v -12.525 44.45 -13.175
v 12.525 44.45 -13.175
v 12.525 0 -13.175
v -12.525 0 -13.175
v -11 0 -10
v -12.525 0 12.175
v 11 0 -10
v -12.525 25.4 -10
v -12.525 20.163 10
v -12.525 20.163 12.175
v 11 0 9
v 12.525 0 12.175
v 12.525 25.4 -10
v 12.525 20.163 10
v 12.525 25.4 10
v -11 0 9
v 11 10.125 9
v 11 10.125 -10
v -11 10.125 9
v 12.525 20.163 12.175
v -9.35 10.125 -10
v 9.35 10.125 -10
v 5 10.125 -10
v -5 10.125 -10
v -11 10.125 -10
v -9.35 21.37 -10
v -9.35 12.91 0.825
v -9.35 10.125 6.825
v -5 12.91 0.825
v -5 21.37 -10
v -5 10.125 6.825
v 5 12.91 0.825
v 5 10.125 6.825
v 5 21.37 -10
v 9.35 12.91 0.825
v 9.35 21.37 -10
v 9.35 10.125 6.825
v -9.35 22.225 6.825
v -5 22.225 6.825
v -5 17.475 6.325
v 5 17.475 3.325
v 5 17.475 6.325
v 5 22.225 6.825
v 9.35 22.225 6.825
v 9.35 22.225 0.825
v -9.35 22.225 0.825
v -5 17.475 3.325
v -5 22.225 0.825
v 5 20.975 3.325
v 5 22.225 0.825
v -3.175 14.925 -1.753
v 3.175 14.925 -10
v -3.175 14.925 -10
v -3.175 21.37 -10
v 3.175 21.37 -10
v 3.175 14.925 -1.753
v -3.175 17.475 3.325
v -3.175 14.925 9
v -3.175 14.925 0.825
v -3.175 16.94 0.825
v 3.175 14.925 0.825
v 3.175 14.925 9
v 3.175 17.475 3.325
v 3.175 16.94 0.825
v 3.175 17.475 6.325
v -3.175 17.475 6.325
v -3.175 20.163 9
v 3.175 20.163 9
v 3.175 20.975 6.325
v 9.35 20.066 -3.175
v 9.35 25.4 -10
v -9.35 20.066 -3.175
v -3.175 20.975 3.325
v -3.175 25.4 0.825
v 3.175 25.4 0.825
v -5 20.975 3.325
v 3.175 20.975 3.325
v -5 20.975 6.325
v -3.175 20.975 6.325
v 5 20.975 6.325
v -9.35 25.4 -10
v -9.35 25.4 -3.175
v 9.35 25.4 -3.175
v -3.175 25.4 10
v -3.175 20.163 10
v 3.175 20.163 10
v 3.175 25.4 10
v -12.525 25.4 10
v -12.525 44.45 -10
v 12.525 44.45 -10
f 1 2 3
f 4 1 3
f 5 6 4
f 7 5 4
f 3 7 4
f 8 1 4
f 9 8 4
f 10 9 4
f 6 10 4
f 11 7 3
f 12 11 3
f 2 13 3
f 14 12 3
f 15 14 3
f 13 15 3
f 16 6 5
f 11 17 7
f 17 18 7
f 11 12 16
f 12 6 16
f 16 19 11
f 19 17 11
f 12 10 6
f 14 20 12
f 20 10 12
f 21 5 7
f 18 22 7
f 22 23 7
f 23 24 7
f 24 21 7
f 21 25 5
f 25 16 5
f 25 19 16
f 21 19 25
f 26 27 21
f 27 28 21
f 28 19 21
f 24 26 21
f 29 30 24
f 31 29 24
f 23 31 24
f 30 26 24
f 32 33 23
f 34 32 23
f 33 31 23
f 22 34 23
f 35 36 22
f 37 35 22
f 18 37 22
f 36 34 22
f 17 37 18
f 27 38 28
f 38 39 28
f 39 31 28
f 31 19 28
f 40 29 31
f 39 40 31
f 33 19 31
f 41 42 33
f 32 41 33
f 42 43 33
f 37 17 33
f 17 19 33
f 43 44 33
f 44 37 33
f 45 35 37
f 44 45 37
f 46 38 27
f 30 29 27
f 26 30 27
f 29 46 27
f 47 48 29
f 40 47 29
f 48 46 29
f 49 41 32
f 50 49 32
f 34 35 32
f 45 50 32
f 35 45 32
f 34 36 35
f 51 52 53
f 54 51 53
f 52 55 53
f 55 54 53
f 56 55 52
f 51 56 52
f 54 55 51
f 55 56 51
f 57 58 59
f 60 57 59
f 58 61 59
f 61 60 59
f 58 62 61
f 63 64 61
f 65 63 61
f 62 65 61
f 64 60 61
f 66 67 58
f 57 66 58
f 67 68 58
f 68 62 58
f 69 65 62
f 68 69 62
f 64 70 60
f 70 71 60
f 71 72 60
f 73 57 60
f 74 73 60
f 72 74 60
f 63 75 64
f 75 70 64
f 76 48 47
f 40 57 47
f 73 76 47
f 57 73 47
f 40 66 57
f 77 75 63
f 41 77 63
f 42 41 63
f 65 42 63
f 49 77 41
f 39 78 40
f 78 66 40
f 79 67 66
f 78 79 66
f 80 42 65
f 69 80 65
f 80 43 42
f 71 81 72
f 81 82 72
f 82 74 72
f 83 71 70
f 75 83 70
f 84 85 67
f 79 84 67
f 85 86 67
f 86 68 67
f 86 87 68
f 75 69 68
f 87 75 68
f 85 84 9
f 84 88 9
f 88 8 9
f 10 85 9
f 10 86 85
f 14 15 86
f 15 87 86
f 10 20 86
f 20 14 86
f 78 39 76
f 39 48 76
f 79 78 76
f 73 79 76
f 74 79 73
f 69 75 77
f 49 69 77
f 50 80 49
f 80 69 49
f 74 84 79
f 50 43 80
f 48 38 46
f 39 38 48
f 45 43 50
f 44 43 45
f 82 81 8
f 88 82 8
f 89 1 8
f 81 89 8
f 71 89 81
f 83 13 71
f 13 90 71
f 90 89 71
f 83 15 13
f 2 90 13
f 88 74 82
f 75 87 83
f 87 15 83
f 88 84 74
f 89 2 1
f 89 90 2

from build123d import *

# Parameters (mm, degrees)
SKETCH2_W            = 18.7
SKETCH2_H            = 20
BOSS_EXTRUDE1_DEPTH  = 25.4
SKETCH3_W            = 6.35
SKETCH3_H            = 3.175
SKETCH3_H_2          = 4.125
CUT_EXTRUDE1_DEPTH   = 34.653863077
SKETCH5_W            = 3.175
SKETCH5_H            = 25.4
BOSS_EXTRUDE2_DEPTH  = 20
SKETCH6_W            = 10
SKETCH6_H            = 10.125
CUT_EXTRUDE2_DEPTH   = 16.825
CUT_EXTRUDE3_REACH   = 34.439
SKETCH7_W            = 3
SKETCH7_H            = 3.5
SKETCH8_W            = 22
SKETCH8_H            = 10.125
CUT_EXTRUDE4_DEPTH   = 19
BOSS_EXTRUDE3_REACH  = 39.049
SKETCH10_W           = 3.175
SKETCH10_H           = 20.1625
BOSS_EXTRUDE10_REACH = 39.695
CUT_EXTRUDE5_REACH   = 33.235
SKETCH12_W           = 6.175
SKETCH12_H           = 10.825
BOSS_EXTRUDE11_REACH = 33.235


with BuildPart() as part:
    # Sketch2 → Boss-Extrude1 (new body)
    with BuildSketch(Plane(origin=(0, 0, 0), x_dir=(1, 0, 0), z_dir=(0, 1, 0))):
        Rectangle(SKETCH2_W, SKETCH2_H)
    extrude(amount=BOSS_EXTRUDE1_DEPTH)

    # Sketch3 → Cut-Extrude1 (cut, through all)
    with BuildSketch(Plane(origin=(0, 0, -10), x_dir=(-1, 0, 0), z_dir=(0, 0, -1))):
        with Locations((0, 16.5125)):
            Rectangle(SKETCH3_W, SKETCH3_H)
        with Locations((0, 20.1625)):
            Rectangle(SKETCH3_W, SKETCH3_H_2)
        with Locations((0, 23.8125)):
            Rectangle(SKETCH3_W, SKETCH3_H)
    extrude(amount=-CUT_EXTRUDE1_DEPTH, mode=Mode.SUBTRACT)

    # Sketch5 → Boss-Extrude2 (add)
    with BuildSketch(Plane(origin=(0, 0, -10), x_dir=(-1, 0, 0), z_dir=(0, 0, -1))):
        with Locations((-10.9375, 12.7)):
            Rectangle(SKETCH5_W, SKETCH5_H)
        with Locations((10.9375, 12.7)):
            Rectangle(SKETCH5_W, SKETCH5_H)
    extrude(amount=-BOSS_EXTRUDE2_DEPTH)

    # Sketch6 → Cut-Extrude2 (cut)
    with BuildSketch(Plane(origin=(0, 0, -10), x_dir=(-1, 0, 0), z_dir=(0, 0, -1))):
        Polygon((5, 22.225), (5, 10.125), (5, 0), (9.35, 0), (9.35, 22.225), align=None)
        with Locations((0, 5.0625)):
            Rectangle(SKETCH6_W, SKETCH6_H)
        Polygon((-5, 22.225), (-9.35, 22.225), (-9.35, 0), (-5, 0), (-5, 10.125), align=None)
    extrude(amount=-CUT_EXTRUDE2_DEPTH, mode=Mode.SUBTRACT)

    # Cut-Extrude3: up to this face of the body (flat: up to its plane)
    cut_extrude3_end = Plane(part.part.faces().sort_by_distance((-5, 16.175, -1.5875))[0])
    # Sketch7 → Cut-Extrude3 (cut, up to the picked face)
    with BuildSketch(Plane(origin=(5, 0, 0), x_dir=(0, 0, -1), z_dir=(1, 0, 0)), mode=Mode.PRIVATE) as cut_extrude3_sk1:
        with Locations((-4.825, 19.225)):
            Rectangle(SKETCH7_W, SKETCH7_H)
    cut_extrude3_tool1 = split(extrude(cut_extrude3_sk1.sketch, amount=-CUT_EXTRUDE3_REACH, mode=Mode.PRIVATE), bisect_by=cut_extrude3_end, keep=Keep.BOTH, mode=Mode.PRIVATE)
    add(cut_extrude3_tool1.solids().sort_by(Axis((5, 19.225, 4.825), (-1, 0, 0)))[0], mode=Mode.SUBTRACT)

    # Sketch8 → Cut-Extrude4 (cut)
    with BuildSketch(Plane(origin=(0, 0, -10), x_dir=(-1, 0, 0), z_dir=(0, 0, -1))):
        with Locations((0, 5.0625)):
            Rectangle(SKETCH8_W, SKETCH8_H)
    extrude(amount=-CUT_EXTRUDE4_DEPTH, mode=Mode.SUBTRACT)

    # Boss-Extrude3: up to this face of the body (flat: up to its plane)
    boss_extrude3_end = Plane(part.part.faces().sort_by_distance((-12.525, 12.7, 0))[0])
    # Sketch10 → Boss-Extrude3 (add, up to the picked face)
    with BuildSketch(Plane(origin=(12.525, 0, 0), x_dir=(0, 0, -1), z_dir=(1, 0, 0)), mode=Mode.PRIVATE) as boss_extrude3_sk1:
        with Locations((-10.5875, 10.08125)):
            Rectangle(SKETCH10_W, SKETCH10_H)
    boss_extrude3_tool1 = split(extrude(boss_extrude3_sk1.sketch, amount=-BOSS_EXTRUDE3_REACH, mode=Mode.PRIVATE), bisect_by=boss_extrude3_end, keep=Keep.BOTH, mode=Mode.PRIVATE)
    add(boss_extrude3_tool1.solids().sort_by(Axis((12.525, 10.08125, 10.5875), (-1, 0, 0)))[0])

    # Boss-Extrude10: up to this face of the body (flat: up to its plane)
    boss_extrude10_end = Plane(part.part.faces().sort_by_distance((-12.525, 12.491899114, 0.881076306))[0])
    # Sketch11 → Boss-Extrude10 (add, up to the picked face)
    with BuildSketch(Plane(origin=(12.525, 0, 0), x_dir=(0, 0, -1), z_dir=(1, 0, 0)), mode=Mode.PRIVATE) as boss_extrude10_sk1:
        Polygon((-0.825, 16.939816253), (-0.825, 12.910183747), (10, 21.370367494), (10, 25.4), align=None)
    boss_extrude10_tool1 = split(extrude(boss_extrude10_sk1.sketch, amount=-BOSS_EXTRUDE10_REACH, mode=Mode.PRIVATE), bisect_by=boss_extrude10_end, keep=Keep.BOTH, mode=Mode.PRIVATE)
    # Sketch11 → Boss-Extrude10 (add, up to the picked face)
    with BuildSketch(Plane(origin=(12.525, 0, 0), x_dir=(0, 0, -1), z_dir=(1, 0, 0)), mode=Mode.PRIVATE) as boss_extrude10_sk2:
        Polygon((13.175, 0), (10, 0), (10, 25.4), (10, 44.45), (13.175, 44.45), align=None)
    boss_extrude10_tool2 = split(extrude(boss_extrude10_sk2.sketch, amount=-BOSS_EXTRUDE10_REACH, mode=Mode.PRIVATE), bisect_by=boss_extrude10_end, keep=Keep.BOTH, mode=Mode.PRIVATE)
    add(boss_extrude10_tool1.solids().sort_by(Axis((12.525, 19.155092, -4.5875), (-1, 0, 0)))[0])
    add(boss_extrude10_tool2.solids().sort_by(Axis((12.525, 22.225, -11.5875), (-1, 0, 0)))[0])

    # Cut-Extrude5: up to this face of the body (flat: up to its plane)
    cut_extrude5_end = Plane(part.part.faces().sort_by_distance((0, 21.169908126, -4.5875))[0])
    # Sketch12 → Cut-Extrude5 (cut, up to the picked face)
    with BuildSketch(Plane(origin=(0, 25.4, 0), x_dir=(1, 0, 0), z_dir=(0, 1, 0)), mode=Mode.PRIVATE) as cut_extrude5_sk1:
        Polygon((-3.175, 10), (-9.35, 10), (-9.35, 3.175), (-3.175, -0.825), align=None)
    cut_extrude5_tool1 = split(extrude(cut_extrude5_sk1.sketch, amount=-CUT_EXTRUDE5_REACH, mode=Mode.PRIVATE), bisect_by=cut_extrude5_end, keep=Keep.BOTH, mode=Mode.PRIVATE)
    # Sketch12 → Cut-Extrude5 (cut, up to the picked face)
    with BuildSketch(Plane(origin=(0, 25.4, 0), x_dir=(1, 0, 0), z_dir=(0, 1, 0)), mode=Mode.PRIVATE) as cut_extrude5_sk2:
        with Locations((6.2625, 4.5875)):
            Rectangle(SKETCH12_W, SKETCH12_H)
    cut_extrude5_tool2 = split(extrude(cut_extrude5_sk2.sketch, amount=-CUT_EXTRUDE5_REACH, mode=Mode.PRIVATE), bisect_by=cut_extrude5_end, keep=Keep.BOTH, mode=Mode.PRIVATE)
    add(cut_extrude5_tool1.solids().sort_by(Axis((-6.029261, 25.4, -5.511957), (0, -1, 0)))[0], mode=Mode.SUBTRACT)
    add(cut_extrude5_tool2.solids().sort_by(Axis((6.2625, 25.4, -4.5875), (0, -1, 0)))[0], mode=Mode.SUBTRACT)

    # Boss-Extrude11: up to this plane
    boss_extrude11_end = Plane(origin=(-59.127601859, 10.916634462, 8.531799857), z_dir=(0, 0.7879130405339252, 0.6157865219023434))
    # Sketch13 → Boss-Extrude11 (add, up to the surface)
    with BuildSketch(Plane(origin=(0, 25.4, 0), x_dir=(1, 0, 0), z_dir=(0, 1, 0)), mode=Mode.PRIVATE) as boss_extrude11_sk1:
        Polygon((-9.35, 3.175), (-9.35, -0.825), (-3.175, -0.825), align=None)
    boss_extrude11_tool1 = split(extrude(boss_extrude11_sk1.sketch, amount=-BOSS_EXTRUDE11_REACH, mode=Mode.PRIVATE), bisect_by=boss_extrude11_end, keep=Keep.BOTH, mode=Mode.PRIVATE)
    add(boss_extrude11_tool1.solids().sort_by_distance((-7.291667, 25.4, -0.508333))[0])
    # Sketch13 → Boss-Extrude11 (add, up to the surface)
    with BuildSketch(Plane(origin=(0, 25.4, 0), x_dir=(1, 0, 0), z_dir=(0, 1, 0)), mode=Mode.PRIVATE) as boss_extrude11_sk2:
        Polygon((9.35, 3.175), (9.35, -0.825), (3.175, -0.825), align=None)
    boss_extrude11_tool2 = split(extrude(boss_extrude11_sk2.sketch, amount=-BOSS_EXTRUDE11_REACH, mode=Mode.PRIVATE), bisect_by=boss_extrude11_end, keep=Keep.BOTH, mode=Mode.PRIVATE)
    add(boss_extrude11_tool2.solids().sort_by_distance((7.291667, 25.4, -0.508333))[0])


solid = part.part
